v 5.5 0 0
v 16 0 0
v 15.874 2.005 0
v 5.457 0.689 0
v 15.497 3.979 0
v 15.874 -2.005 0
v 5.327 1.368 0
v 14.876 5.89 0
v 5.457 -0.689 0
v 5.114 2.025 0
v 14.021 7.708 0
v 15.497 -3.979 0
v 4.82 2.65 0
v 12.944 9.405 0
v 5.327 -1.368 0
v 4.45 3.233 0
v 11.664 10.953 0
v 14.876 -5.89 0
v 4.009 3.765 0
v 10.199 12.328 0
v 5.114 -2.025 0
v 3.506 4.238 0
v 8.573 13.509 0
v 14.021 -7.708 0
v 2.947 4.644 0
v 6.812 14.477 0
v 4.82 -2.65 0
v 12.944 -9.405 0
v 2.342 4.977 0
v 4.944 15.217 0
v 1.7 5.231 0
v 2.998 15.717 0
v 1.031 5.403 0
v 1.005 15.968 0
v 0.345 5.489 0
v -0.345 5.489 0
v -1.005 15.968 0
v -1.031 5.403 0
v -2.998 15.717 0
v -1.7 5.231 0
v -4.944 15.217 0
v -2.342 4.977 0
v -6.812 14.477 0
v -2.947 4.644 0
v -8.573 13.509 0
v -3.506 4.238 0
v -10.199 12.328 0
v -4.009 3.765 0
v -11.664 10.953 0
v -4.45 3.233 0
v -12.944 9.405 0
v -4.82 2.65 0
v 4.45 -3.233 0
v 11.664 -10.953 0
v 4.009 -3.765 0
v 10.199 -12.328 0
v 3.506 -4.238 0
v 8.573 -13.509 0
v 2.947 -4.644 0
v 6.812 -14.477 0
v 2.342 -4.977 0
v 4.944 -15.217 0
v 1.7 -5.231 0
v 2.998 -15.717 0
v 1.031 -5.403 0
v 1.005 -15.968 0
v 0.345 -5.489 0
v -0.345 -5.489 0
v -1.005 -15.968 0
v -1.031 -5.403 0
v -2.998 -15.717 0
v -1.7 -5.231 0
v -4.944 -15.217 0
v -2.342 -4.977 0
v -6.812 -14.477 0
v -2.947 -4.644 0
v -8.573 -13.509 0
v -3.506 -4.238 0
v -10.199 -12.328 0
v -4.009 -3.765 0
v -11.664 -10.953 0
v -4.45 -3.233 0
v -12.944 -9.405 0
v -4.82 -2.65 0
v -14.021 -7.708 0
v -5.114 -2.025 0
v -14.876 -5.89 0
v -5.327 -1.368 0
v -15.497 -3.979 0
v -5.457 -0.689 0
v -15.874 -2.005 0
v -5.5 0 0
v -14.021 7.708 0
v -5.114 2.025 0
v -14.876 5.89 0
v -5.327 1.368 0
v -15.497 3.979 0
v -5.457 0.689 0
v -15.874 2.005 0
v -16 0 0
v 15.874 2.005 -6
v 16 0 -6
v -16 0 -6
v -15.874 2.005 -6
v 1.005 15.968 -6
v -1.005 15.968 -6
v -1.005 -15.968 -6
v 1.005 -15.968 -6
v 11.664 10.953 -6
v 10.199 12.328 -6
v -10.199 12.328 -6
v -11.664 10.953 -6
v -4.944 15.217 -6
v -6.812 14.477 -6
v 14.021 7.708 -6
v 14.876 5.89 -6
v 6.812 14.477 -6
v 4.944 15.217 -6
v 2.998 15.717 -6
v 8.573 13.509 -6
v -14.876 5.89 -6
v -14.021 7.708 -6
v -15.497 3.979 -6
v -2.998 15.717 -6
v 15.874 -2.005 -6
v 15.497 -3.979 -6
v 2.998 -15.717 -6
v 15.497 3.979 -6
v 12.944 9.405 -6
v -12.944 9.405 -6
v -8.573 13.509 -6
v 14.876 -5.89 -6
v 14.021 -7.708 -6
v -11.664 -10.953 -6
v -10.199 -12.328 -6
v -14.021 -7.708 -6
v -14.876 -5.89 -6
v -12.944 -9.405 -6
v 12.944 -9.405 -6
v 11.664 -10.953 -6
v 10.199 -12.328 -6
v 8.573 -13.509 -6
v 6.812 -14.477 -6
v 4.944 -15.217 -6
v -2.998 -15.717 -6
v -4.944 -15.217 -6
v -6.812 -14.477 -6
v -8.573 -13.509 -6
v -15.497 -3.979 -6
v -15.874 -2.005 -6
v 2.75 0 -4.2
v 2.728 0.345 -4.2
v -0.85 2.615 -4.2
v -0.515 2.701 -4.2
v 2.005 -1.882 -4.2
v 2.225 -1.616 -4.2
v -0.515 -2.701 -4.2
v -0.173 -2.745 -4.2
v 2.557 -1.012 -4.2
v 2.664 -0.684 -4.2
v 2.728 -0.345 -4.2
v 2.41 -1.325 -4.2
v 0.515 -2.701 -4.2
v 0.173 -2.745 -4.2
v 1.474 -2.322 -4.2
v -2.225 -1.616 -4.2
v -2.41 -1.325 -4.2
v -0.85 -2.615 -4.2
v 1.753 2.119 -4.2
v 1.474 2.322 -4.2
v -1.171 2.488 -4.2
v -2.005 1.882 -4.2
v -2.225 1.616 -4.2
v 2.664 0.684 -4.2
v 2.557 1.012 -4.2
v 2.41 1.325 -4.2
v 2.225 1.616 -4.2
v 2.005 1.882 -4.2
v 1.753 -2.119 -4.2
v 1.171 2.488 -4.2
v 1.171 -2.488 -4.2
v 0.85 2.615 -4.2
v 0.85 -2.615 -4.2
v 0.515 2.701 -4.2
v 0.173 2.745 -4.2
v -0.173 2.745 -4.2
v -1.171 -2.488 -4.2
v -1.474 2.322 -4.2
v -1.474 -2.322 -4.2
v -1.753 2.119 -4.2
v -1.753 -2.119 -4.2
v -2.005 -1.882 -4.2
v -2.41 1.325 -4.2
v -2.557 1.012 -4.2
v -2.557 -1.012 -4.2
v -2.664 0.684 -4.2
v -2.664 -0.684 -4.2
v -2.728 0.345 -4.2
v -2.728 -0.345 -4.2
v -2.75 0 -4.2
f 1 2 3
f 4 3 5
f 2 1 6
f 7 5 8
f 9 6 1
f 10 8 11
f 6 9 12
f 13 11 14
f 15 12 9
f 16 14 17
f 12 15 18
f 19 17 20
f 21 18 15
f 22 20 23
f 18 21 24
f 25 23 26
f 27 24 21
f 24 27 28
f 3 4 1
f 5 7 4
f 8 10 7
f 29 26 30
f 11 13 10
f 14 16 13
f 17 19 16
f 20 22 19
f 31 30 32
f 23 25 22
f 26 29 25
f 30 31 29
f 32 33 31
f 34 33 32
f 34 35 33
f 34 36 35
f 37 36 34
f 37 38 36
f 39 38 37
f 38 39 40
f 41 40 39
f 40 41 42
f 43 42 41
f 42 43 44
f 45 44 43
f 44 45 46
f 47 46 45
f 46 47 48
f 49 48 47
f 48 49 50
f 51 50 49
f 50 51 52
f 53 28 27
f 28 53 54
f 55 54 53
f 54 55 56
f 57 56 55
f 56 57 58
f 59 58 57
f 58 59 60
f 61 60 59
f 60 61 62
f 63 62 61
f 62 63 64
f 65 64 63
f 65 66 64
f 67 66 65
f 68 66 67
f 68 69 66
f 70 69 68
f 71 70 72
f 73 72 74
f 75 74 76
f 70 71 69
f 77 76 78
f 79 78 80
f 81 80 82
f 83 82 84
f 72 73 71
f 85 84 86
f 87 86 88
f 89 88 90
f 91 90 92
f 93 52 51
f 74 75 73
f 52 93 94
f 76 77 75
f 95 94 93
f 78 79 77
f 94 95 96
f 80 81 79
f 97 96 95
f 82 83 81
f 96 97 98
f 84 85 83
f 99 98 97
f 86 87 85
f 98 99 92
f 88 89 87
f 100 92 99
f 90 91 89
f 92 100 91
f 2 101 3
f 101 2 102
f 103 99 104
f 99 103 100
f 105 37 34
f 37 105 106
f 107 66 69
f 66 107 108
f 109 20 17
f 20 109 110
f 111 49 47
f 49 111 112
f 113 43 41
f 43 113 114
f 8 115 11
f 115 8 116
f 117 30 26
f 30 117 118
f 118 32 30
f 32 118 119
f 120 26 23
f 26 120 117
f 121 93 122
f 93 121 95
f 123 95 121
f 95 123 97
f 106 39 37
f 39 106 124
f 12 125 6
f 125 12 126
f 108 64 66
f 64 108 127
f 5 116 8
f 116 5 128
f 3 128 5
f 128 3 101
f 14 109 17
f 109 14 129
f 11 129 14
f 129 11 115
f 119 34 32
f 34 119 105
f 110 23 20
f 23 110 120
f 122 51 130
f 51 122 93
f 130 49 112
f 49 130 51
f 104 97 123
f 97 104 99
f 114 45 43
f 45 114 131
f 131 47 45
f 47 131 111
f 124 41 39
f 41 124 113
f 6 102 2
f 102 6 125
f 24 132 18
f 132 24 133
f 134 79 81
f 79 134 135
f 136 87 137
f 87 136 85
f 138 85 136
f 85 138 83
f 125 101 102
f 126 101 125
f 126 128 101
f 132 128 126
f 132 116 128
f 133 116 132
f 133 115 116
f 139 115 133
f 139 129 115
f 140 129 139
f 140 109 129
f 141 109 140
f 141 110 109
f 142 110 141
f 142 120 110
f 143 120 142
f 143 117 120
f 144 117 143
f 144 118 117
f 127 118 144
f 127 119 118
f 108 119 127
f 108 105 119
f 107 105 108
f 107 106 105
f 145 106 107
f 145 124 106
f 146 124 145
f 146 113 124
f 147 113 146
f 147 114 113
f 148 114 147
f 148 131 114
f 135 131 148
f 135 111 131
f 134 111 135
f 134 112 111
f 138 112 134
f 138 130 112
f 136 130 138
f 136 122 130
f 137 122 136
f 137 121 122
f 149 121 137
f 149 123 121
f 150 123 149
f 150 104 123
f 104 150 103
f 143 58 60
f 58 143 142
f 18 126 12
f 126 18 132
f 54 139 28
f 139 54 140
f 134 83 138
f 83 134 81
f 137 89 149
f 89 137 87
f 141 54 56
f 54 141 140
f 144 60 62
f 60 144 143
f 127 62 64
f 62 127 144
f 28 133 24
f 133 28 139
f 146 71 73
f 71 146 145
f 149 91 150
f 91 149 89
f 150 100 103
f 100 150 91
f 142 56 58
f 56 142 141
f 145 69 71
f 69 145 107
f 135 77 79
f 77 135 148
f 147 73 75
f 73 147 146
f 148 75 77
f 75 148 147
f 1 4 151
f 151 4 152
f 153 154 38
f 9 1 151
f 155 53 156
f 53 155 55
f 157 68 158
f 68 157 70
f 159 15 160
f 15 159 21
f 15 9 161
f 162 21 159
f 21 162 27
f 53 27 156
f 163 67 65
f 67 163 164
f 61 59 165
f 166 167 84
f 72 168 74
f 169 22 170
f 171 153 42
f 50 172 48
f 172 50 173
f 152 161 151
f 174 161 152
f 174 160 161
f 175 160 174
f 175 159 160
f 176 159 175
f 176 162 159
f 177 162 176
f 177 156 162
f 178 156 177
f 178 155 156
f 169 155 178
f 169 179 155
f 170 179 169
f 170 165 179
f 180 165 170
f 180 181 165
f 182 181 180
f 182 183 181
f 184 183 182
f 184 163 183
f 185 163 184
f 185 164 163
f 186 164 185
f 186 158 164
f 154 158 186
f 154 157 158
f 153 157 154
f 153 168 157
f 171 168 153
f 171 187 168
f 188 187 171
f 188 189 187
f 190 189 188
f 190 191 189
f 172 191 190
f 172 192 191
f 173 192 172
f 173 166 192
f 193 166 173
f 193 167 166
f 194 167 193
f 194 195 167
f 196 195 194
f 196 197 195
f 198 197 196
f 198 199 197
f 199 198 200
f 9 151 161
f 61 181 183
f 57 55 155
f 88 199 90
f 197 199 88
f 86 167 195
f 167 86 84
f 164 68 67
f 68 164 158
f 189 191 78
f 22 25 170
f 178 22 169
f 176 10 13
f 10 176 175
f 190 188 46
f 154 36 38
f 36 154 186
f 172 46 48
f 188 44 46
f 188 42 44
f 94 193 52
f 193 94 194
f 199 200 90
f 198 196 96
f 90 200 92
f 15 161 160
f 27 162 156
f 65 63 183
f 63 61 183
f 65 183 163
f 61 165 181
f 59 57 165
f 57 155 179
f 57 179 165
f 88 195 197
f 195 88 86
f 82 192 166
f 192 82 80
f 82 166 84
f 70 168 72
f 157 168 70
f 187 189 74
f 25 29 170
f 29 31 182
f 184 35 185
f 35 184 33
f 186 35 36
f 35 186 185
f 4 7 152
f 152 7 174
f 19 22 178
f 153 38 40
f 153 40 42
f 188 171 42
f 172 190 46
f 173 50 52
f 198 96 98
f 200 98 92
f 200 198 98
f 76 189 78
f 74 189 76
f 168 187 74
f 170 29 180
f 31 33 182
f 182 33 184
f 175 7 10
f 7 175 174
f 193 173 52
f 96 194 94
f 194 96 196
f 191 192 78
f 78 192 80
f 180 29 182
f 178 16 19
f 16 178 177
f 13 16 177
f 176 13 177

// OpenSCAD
$fn = 50;


difference() {
	union() {
		translate(v = [0, 0, -3.0000000000]) {
			cylinder(h = 3, r = 10.0000000000);
		}
		translate(v = [0, 0, -6.0000000000]) {
			cylinder(h = 6, r = 16.0000000000);
		}
	}
	union() {
		translate(v = [0, 0, 0]) {
			rotate(a = [0, 0, 0]) {
				difference() {
					union() {
						#translate(v = [0, 0, -3.0000000000]) {
							cylinder(h = 3, r = 2.2500000000);
						}
						#translate(v = [0, 0, -4.2000000000]) {
							cylinder(h = 4.2000000000, r1 = 2.7500000000, r2 = 5.5000000000);
						}
						#translate(v = [0, 0, -3.0000000000]) {
							cylinder(h = 3, r = 2.7500000000);
						}
						#translate(v = [0, 0, -3.0000000000]) {
							cylinder(h = 3, r = 2.2500000000);
						}
					}
					union();
				}
			}
		}
	}
}
